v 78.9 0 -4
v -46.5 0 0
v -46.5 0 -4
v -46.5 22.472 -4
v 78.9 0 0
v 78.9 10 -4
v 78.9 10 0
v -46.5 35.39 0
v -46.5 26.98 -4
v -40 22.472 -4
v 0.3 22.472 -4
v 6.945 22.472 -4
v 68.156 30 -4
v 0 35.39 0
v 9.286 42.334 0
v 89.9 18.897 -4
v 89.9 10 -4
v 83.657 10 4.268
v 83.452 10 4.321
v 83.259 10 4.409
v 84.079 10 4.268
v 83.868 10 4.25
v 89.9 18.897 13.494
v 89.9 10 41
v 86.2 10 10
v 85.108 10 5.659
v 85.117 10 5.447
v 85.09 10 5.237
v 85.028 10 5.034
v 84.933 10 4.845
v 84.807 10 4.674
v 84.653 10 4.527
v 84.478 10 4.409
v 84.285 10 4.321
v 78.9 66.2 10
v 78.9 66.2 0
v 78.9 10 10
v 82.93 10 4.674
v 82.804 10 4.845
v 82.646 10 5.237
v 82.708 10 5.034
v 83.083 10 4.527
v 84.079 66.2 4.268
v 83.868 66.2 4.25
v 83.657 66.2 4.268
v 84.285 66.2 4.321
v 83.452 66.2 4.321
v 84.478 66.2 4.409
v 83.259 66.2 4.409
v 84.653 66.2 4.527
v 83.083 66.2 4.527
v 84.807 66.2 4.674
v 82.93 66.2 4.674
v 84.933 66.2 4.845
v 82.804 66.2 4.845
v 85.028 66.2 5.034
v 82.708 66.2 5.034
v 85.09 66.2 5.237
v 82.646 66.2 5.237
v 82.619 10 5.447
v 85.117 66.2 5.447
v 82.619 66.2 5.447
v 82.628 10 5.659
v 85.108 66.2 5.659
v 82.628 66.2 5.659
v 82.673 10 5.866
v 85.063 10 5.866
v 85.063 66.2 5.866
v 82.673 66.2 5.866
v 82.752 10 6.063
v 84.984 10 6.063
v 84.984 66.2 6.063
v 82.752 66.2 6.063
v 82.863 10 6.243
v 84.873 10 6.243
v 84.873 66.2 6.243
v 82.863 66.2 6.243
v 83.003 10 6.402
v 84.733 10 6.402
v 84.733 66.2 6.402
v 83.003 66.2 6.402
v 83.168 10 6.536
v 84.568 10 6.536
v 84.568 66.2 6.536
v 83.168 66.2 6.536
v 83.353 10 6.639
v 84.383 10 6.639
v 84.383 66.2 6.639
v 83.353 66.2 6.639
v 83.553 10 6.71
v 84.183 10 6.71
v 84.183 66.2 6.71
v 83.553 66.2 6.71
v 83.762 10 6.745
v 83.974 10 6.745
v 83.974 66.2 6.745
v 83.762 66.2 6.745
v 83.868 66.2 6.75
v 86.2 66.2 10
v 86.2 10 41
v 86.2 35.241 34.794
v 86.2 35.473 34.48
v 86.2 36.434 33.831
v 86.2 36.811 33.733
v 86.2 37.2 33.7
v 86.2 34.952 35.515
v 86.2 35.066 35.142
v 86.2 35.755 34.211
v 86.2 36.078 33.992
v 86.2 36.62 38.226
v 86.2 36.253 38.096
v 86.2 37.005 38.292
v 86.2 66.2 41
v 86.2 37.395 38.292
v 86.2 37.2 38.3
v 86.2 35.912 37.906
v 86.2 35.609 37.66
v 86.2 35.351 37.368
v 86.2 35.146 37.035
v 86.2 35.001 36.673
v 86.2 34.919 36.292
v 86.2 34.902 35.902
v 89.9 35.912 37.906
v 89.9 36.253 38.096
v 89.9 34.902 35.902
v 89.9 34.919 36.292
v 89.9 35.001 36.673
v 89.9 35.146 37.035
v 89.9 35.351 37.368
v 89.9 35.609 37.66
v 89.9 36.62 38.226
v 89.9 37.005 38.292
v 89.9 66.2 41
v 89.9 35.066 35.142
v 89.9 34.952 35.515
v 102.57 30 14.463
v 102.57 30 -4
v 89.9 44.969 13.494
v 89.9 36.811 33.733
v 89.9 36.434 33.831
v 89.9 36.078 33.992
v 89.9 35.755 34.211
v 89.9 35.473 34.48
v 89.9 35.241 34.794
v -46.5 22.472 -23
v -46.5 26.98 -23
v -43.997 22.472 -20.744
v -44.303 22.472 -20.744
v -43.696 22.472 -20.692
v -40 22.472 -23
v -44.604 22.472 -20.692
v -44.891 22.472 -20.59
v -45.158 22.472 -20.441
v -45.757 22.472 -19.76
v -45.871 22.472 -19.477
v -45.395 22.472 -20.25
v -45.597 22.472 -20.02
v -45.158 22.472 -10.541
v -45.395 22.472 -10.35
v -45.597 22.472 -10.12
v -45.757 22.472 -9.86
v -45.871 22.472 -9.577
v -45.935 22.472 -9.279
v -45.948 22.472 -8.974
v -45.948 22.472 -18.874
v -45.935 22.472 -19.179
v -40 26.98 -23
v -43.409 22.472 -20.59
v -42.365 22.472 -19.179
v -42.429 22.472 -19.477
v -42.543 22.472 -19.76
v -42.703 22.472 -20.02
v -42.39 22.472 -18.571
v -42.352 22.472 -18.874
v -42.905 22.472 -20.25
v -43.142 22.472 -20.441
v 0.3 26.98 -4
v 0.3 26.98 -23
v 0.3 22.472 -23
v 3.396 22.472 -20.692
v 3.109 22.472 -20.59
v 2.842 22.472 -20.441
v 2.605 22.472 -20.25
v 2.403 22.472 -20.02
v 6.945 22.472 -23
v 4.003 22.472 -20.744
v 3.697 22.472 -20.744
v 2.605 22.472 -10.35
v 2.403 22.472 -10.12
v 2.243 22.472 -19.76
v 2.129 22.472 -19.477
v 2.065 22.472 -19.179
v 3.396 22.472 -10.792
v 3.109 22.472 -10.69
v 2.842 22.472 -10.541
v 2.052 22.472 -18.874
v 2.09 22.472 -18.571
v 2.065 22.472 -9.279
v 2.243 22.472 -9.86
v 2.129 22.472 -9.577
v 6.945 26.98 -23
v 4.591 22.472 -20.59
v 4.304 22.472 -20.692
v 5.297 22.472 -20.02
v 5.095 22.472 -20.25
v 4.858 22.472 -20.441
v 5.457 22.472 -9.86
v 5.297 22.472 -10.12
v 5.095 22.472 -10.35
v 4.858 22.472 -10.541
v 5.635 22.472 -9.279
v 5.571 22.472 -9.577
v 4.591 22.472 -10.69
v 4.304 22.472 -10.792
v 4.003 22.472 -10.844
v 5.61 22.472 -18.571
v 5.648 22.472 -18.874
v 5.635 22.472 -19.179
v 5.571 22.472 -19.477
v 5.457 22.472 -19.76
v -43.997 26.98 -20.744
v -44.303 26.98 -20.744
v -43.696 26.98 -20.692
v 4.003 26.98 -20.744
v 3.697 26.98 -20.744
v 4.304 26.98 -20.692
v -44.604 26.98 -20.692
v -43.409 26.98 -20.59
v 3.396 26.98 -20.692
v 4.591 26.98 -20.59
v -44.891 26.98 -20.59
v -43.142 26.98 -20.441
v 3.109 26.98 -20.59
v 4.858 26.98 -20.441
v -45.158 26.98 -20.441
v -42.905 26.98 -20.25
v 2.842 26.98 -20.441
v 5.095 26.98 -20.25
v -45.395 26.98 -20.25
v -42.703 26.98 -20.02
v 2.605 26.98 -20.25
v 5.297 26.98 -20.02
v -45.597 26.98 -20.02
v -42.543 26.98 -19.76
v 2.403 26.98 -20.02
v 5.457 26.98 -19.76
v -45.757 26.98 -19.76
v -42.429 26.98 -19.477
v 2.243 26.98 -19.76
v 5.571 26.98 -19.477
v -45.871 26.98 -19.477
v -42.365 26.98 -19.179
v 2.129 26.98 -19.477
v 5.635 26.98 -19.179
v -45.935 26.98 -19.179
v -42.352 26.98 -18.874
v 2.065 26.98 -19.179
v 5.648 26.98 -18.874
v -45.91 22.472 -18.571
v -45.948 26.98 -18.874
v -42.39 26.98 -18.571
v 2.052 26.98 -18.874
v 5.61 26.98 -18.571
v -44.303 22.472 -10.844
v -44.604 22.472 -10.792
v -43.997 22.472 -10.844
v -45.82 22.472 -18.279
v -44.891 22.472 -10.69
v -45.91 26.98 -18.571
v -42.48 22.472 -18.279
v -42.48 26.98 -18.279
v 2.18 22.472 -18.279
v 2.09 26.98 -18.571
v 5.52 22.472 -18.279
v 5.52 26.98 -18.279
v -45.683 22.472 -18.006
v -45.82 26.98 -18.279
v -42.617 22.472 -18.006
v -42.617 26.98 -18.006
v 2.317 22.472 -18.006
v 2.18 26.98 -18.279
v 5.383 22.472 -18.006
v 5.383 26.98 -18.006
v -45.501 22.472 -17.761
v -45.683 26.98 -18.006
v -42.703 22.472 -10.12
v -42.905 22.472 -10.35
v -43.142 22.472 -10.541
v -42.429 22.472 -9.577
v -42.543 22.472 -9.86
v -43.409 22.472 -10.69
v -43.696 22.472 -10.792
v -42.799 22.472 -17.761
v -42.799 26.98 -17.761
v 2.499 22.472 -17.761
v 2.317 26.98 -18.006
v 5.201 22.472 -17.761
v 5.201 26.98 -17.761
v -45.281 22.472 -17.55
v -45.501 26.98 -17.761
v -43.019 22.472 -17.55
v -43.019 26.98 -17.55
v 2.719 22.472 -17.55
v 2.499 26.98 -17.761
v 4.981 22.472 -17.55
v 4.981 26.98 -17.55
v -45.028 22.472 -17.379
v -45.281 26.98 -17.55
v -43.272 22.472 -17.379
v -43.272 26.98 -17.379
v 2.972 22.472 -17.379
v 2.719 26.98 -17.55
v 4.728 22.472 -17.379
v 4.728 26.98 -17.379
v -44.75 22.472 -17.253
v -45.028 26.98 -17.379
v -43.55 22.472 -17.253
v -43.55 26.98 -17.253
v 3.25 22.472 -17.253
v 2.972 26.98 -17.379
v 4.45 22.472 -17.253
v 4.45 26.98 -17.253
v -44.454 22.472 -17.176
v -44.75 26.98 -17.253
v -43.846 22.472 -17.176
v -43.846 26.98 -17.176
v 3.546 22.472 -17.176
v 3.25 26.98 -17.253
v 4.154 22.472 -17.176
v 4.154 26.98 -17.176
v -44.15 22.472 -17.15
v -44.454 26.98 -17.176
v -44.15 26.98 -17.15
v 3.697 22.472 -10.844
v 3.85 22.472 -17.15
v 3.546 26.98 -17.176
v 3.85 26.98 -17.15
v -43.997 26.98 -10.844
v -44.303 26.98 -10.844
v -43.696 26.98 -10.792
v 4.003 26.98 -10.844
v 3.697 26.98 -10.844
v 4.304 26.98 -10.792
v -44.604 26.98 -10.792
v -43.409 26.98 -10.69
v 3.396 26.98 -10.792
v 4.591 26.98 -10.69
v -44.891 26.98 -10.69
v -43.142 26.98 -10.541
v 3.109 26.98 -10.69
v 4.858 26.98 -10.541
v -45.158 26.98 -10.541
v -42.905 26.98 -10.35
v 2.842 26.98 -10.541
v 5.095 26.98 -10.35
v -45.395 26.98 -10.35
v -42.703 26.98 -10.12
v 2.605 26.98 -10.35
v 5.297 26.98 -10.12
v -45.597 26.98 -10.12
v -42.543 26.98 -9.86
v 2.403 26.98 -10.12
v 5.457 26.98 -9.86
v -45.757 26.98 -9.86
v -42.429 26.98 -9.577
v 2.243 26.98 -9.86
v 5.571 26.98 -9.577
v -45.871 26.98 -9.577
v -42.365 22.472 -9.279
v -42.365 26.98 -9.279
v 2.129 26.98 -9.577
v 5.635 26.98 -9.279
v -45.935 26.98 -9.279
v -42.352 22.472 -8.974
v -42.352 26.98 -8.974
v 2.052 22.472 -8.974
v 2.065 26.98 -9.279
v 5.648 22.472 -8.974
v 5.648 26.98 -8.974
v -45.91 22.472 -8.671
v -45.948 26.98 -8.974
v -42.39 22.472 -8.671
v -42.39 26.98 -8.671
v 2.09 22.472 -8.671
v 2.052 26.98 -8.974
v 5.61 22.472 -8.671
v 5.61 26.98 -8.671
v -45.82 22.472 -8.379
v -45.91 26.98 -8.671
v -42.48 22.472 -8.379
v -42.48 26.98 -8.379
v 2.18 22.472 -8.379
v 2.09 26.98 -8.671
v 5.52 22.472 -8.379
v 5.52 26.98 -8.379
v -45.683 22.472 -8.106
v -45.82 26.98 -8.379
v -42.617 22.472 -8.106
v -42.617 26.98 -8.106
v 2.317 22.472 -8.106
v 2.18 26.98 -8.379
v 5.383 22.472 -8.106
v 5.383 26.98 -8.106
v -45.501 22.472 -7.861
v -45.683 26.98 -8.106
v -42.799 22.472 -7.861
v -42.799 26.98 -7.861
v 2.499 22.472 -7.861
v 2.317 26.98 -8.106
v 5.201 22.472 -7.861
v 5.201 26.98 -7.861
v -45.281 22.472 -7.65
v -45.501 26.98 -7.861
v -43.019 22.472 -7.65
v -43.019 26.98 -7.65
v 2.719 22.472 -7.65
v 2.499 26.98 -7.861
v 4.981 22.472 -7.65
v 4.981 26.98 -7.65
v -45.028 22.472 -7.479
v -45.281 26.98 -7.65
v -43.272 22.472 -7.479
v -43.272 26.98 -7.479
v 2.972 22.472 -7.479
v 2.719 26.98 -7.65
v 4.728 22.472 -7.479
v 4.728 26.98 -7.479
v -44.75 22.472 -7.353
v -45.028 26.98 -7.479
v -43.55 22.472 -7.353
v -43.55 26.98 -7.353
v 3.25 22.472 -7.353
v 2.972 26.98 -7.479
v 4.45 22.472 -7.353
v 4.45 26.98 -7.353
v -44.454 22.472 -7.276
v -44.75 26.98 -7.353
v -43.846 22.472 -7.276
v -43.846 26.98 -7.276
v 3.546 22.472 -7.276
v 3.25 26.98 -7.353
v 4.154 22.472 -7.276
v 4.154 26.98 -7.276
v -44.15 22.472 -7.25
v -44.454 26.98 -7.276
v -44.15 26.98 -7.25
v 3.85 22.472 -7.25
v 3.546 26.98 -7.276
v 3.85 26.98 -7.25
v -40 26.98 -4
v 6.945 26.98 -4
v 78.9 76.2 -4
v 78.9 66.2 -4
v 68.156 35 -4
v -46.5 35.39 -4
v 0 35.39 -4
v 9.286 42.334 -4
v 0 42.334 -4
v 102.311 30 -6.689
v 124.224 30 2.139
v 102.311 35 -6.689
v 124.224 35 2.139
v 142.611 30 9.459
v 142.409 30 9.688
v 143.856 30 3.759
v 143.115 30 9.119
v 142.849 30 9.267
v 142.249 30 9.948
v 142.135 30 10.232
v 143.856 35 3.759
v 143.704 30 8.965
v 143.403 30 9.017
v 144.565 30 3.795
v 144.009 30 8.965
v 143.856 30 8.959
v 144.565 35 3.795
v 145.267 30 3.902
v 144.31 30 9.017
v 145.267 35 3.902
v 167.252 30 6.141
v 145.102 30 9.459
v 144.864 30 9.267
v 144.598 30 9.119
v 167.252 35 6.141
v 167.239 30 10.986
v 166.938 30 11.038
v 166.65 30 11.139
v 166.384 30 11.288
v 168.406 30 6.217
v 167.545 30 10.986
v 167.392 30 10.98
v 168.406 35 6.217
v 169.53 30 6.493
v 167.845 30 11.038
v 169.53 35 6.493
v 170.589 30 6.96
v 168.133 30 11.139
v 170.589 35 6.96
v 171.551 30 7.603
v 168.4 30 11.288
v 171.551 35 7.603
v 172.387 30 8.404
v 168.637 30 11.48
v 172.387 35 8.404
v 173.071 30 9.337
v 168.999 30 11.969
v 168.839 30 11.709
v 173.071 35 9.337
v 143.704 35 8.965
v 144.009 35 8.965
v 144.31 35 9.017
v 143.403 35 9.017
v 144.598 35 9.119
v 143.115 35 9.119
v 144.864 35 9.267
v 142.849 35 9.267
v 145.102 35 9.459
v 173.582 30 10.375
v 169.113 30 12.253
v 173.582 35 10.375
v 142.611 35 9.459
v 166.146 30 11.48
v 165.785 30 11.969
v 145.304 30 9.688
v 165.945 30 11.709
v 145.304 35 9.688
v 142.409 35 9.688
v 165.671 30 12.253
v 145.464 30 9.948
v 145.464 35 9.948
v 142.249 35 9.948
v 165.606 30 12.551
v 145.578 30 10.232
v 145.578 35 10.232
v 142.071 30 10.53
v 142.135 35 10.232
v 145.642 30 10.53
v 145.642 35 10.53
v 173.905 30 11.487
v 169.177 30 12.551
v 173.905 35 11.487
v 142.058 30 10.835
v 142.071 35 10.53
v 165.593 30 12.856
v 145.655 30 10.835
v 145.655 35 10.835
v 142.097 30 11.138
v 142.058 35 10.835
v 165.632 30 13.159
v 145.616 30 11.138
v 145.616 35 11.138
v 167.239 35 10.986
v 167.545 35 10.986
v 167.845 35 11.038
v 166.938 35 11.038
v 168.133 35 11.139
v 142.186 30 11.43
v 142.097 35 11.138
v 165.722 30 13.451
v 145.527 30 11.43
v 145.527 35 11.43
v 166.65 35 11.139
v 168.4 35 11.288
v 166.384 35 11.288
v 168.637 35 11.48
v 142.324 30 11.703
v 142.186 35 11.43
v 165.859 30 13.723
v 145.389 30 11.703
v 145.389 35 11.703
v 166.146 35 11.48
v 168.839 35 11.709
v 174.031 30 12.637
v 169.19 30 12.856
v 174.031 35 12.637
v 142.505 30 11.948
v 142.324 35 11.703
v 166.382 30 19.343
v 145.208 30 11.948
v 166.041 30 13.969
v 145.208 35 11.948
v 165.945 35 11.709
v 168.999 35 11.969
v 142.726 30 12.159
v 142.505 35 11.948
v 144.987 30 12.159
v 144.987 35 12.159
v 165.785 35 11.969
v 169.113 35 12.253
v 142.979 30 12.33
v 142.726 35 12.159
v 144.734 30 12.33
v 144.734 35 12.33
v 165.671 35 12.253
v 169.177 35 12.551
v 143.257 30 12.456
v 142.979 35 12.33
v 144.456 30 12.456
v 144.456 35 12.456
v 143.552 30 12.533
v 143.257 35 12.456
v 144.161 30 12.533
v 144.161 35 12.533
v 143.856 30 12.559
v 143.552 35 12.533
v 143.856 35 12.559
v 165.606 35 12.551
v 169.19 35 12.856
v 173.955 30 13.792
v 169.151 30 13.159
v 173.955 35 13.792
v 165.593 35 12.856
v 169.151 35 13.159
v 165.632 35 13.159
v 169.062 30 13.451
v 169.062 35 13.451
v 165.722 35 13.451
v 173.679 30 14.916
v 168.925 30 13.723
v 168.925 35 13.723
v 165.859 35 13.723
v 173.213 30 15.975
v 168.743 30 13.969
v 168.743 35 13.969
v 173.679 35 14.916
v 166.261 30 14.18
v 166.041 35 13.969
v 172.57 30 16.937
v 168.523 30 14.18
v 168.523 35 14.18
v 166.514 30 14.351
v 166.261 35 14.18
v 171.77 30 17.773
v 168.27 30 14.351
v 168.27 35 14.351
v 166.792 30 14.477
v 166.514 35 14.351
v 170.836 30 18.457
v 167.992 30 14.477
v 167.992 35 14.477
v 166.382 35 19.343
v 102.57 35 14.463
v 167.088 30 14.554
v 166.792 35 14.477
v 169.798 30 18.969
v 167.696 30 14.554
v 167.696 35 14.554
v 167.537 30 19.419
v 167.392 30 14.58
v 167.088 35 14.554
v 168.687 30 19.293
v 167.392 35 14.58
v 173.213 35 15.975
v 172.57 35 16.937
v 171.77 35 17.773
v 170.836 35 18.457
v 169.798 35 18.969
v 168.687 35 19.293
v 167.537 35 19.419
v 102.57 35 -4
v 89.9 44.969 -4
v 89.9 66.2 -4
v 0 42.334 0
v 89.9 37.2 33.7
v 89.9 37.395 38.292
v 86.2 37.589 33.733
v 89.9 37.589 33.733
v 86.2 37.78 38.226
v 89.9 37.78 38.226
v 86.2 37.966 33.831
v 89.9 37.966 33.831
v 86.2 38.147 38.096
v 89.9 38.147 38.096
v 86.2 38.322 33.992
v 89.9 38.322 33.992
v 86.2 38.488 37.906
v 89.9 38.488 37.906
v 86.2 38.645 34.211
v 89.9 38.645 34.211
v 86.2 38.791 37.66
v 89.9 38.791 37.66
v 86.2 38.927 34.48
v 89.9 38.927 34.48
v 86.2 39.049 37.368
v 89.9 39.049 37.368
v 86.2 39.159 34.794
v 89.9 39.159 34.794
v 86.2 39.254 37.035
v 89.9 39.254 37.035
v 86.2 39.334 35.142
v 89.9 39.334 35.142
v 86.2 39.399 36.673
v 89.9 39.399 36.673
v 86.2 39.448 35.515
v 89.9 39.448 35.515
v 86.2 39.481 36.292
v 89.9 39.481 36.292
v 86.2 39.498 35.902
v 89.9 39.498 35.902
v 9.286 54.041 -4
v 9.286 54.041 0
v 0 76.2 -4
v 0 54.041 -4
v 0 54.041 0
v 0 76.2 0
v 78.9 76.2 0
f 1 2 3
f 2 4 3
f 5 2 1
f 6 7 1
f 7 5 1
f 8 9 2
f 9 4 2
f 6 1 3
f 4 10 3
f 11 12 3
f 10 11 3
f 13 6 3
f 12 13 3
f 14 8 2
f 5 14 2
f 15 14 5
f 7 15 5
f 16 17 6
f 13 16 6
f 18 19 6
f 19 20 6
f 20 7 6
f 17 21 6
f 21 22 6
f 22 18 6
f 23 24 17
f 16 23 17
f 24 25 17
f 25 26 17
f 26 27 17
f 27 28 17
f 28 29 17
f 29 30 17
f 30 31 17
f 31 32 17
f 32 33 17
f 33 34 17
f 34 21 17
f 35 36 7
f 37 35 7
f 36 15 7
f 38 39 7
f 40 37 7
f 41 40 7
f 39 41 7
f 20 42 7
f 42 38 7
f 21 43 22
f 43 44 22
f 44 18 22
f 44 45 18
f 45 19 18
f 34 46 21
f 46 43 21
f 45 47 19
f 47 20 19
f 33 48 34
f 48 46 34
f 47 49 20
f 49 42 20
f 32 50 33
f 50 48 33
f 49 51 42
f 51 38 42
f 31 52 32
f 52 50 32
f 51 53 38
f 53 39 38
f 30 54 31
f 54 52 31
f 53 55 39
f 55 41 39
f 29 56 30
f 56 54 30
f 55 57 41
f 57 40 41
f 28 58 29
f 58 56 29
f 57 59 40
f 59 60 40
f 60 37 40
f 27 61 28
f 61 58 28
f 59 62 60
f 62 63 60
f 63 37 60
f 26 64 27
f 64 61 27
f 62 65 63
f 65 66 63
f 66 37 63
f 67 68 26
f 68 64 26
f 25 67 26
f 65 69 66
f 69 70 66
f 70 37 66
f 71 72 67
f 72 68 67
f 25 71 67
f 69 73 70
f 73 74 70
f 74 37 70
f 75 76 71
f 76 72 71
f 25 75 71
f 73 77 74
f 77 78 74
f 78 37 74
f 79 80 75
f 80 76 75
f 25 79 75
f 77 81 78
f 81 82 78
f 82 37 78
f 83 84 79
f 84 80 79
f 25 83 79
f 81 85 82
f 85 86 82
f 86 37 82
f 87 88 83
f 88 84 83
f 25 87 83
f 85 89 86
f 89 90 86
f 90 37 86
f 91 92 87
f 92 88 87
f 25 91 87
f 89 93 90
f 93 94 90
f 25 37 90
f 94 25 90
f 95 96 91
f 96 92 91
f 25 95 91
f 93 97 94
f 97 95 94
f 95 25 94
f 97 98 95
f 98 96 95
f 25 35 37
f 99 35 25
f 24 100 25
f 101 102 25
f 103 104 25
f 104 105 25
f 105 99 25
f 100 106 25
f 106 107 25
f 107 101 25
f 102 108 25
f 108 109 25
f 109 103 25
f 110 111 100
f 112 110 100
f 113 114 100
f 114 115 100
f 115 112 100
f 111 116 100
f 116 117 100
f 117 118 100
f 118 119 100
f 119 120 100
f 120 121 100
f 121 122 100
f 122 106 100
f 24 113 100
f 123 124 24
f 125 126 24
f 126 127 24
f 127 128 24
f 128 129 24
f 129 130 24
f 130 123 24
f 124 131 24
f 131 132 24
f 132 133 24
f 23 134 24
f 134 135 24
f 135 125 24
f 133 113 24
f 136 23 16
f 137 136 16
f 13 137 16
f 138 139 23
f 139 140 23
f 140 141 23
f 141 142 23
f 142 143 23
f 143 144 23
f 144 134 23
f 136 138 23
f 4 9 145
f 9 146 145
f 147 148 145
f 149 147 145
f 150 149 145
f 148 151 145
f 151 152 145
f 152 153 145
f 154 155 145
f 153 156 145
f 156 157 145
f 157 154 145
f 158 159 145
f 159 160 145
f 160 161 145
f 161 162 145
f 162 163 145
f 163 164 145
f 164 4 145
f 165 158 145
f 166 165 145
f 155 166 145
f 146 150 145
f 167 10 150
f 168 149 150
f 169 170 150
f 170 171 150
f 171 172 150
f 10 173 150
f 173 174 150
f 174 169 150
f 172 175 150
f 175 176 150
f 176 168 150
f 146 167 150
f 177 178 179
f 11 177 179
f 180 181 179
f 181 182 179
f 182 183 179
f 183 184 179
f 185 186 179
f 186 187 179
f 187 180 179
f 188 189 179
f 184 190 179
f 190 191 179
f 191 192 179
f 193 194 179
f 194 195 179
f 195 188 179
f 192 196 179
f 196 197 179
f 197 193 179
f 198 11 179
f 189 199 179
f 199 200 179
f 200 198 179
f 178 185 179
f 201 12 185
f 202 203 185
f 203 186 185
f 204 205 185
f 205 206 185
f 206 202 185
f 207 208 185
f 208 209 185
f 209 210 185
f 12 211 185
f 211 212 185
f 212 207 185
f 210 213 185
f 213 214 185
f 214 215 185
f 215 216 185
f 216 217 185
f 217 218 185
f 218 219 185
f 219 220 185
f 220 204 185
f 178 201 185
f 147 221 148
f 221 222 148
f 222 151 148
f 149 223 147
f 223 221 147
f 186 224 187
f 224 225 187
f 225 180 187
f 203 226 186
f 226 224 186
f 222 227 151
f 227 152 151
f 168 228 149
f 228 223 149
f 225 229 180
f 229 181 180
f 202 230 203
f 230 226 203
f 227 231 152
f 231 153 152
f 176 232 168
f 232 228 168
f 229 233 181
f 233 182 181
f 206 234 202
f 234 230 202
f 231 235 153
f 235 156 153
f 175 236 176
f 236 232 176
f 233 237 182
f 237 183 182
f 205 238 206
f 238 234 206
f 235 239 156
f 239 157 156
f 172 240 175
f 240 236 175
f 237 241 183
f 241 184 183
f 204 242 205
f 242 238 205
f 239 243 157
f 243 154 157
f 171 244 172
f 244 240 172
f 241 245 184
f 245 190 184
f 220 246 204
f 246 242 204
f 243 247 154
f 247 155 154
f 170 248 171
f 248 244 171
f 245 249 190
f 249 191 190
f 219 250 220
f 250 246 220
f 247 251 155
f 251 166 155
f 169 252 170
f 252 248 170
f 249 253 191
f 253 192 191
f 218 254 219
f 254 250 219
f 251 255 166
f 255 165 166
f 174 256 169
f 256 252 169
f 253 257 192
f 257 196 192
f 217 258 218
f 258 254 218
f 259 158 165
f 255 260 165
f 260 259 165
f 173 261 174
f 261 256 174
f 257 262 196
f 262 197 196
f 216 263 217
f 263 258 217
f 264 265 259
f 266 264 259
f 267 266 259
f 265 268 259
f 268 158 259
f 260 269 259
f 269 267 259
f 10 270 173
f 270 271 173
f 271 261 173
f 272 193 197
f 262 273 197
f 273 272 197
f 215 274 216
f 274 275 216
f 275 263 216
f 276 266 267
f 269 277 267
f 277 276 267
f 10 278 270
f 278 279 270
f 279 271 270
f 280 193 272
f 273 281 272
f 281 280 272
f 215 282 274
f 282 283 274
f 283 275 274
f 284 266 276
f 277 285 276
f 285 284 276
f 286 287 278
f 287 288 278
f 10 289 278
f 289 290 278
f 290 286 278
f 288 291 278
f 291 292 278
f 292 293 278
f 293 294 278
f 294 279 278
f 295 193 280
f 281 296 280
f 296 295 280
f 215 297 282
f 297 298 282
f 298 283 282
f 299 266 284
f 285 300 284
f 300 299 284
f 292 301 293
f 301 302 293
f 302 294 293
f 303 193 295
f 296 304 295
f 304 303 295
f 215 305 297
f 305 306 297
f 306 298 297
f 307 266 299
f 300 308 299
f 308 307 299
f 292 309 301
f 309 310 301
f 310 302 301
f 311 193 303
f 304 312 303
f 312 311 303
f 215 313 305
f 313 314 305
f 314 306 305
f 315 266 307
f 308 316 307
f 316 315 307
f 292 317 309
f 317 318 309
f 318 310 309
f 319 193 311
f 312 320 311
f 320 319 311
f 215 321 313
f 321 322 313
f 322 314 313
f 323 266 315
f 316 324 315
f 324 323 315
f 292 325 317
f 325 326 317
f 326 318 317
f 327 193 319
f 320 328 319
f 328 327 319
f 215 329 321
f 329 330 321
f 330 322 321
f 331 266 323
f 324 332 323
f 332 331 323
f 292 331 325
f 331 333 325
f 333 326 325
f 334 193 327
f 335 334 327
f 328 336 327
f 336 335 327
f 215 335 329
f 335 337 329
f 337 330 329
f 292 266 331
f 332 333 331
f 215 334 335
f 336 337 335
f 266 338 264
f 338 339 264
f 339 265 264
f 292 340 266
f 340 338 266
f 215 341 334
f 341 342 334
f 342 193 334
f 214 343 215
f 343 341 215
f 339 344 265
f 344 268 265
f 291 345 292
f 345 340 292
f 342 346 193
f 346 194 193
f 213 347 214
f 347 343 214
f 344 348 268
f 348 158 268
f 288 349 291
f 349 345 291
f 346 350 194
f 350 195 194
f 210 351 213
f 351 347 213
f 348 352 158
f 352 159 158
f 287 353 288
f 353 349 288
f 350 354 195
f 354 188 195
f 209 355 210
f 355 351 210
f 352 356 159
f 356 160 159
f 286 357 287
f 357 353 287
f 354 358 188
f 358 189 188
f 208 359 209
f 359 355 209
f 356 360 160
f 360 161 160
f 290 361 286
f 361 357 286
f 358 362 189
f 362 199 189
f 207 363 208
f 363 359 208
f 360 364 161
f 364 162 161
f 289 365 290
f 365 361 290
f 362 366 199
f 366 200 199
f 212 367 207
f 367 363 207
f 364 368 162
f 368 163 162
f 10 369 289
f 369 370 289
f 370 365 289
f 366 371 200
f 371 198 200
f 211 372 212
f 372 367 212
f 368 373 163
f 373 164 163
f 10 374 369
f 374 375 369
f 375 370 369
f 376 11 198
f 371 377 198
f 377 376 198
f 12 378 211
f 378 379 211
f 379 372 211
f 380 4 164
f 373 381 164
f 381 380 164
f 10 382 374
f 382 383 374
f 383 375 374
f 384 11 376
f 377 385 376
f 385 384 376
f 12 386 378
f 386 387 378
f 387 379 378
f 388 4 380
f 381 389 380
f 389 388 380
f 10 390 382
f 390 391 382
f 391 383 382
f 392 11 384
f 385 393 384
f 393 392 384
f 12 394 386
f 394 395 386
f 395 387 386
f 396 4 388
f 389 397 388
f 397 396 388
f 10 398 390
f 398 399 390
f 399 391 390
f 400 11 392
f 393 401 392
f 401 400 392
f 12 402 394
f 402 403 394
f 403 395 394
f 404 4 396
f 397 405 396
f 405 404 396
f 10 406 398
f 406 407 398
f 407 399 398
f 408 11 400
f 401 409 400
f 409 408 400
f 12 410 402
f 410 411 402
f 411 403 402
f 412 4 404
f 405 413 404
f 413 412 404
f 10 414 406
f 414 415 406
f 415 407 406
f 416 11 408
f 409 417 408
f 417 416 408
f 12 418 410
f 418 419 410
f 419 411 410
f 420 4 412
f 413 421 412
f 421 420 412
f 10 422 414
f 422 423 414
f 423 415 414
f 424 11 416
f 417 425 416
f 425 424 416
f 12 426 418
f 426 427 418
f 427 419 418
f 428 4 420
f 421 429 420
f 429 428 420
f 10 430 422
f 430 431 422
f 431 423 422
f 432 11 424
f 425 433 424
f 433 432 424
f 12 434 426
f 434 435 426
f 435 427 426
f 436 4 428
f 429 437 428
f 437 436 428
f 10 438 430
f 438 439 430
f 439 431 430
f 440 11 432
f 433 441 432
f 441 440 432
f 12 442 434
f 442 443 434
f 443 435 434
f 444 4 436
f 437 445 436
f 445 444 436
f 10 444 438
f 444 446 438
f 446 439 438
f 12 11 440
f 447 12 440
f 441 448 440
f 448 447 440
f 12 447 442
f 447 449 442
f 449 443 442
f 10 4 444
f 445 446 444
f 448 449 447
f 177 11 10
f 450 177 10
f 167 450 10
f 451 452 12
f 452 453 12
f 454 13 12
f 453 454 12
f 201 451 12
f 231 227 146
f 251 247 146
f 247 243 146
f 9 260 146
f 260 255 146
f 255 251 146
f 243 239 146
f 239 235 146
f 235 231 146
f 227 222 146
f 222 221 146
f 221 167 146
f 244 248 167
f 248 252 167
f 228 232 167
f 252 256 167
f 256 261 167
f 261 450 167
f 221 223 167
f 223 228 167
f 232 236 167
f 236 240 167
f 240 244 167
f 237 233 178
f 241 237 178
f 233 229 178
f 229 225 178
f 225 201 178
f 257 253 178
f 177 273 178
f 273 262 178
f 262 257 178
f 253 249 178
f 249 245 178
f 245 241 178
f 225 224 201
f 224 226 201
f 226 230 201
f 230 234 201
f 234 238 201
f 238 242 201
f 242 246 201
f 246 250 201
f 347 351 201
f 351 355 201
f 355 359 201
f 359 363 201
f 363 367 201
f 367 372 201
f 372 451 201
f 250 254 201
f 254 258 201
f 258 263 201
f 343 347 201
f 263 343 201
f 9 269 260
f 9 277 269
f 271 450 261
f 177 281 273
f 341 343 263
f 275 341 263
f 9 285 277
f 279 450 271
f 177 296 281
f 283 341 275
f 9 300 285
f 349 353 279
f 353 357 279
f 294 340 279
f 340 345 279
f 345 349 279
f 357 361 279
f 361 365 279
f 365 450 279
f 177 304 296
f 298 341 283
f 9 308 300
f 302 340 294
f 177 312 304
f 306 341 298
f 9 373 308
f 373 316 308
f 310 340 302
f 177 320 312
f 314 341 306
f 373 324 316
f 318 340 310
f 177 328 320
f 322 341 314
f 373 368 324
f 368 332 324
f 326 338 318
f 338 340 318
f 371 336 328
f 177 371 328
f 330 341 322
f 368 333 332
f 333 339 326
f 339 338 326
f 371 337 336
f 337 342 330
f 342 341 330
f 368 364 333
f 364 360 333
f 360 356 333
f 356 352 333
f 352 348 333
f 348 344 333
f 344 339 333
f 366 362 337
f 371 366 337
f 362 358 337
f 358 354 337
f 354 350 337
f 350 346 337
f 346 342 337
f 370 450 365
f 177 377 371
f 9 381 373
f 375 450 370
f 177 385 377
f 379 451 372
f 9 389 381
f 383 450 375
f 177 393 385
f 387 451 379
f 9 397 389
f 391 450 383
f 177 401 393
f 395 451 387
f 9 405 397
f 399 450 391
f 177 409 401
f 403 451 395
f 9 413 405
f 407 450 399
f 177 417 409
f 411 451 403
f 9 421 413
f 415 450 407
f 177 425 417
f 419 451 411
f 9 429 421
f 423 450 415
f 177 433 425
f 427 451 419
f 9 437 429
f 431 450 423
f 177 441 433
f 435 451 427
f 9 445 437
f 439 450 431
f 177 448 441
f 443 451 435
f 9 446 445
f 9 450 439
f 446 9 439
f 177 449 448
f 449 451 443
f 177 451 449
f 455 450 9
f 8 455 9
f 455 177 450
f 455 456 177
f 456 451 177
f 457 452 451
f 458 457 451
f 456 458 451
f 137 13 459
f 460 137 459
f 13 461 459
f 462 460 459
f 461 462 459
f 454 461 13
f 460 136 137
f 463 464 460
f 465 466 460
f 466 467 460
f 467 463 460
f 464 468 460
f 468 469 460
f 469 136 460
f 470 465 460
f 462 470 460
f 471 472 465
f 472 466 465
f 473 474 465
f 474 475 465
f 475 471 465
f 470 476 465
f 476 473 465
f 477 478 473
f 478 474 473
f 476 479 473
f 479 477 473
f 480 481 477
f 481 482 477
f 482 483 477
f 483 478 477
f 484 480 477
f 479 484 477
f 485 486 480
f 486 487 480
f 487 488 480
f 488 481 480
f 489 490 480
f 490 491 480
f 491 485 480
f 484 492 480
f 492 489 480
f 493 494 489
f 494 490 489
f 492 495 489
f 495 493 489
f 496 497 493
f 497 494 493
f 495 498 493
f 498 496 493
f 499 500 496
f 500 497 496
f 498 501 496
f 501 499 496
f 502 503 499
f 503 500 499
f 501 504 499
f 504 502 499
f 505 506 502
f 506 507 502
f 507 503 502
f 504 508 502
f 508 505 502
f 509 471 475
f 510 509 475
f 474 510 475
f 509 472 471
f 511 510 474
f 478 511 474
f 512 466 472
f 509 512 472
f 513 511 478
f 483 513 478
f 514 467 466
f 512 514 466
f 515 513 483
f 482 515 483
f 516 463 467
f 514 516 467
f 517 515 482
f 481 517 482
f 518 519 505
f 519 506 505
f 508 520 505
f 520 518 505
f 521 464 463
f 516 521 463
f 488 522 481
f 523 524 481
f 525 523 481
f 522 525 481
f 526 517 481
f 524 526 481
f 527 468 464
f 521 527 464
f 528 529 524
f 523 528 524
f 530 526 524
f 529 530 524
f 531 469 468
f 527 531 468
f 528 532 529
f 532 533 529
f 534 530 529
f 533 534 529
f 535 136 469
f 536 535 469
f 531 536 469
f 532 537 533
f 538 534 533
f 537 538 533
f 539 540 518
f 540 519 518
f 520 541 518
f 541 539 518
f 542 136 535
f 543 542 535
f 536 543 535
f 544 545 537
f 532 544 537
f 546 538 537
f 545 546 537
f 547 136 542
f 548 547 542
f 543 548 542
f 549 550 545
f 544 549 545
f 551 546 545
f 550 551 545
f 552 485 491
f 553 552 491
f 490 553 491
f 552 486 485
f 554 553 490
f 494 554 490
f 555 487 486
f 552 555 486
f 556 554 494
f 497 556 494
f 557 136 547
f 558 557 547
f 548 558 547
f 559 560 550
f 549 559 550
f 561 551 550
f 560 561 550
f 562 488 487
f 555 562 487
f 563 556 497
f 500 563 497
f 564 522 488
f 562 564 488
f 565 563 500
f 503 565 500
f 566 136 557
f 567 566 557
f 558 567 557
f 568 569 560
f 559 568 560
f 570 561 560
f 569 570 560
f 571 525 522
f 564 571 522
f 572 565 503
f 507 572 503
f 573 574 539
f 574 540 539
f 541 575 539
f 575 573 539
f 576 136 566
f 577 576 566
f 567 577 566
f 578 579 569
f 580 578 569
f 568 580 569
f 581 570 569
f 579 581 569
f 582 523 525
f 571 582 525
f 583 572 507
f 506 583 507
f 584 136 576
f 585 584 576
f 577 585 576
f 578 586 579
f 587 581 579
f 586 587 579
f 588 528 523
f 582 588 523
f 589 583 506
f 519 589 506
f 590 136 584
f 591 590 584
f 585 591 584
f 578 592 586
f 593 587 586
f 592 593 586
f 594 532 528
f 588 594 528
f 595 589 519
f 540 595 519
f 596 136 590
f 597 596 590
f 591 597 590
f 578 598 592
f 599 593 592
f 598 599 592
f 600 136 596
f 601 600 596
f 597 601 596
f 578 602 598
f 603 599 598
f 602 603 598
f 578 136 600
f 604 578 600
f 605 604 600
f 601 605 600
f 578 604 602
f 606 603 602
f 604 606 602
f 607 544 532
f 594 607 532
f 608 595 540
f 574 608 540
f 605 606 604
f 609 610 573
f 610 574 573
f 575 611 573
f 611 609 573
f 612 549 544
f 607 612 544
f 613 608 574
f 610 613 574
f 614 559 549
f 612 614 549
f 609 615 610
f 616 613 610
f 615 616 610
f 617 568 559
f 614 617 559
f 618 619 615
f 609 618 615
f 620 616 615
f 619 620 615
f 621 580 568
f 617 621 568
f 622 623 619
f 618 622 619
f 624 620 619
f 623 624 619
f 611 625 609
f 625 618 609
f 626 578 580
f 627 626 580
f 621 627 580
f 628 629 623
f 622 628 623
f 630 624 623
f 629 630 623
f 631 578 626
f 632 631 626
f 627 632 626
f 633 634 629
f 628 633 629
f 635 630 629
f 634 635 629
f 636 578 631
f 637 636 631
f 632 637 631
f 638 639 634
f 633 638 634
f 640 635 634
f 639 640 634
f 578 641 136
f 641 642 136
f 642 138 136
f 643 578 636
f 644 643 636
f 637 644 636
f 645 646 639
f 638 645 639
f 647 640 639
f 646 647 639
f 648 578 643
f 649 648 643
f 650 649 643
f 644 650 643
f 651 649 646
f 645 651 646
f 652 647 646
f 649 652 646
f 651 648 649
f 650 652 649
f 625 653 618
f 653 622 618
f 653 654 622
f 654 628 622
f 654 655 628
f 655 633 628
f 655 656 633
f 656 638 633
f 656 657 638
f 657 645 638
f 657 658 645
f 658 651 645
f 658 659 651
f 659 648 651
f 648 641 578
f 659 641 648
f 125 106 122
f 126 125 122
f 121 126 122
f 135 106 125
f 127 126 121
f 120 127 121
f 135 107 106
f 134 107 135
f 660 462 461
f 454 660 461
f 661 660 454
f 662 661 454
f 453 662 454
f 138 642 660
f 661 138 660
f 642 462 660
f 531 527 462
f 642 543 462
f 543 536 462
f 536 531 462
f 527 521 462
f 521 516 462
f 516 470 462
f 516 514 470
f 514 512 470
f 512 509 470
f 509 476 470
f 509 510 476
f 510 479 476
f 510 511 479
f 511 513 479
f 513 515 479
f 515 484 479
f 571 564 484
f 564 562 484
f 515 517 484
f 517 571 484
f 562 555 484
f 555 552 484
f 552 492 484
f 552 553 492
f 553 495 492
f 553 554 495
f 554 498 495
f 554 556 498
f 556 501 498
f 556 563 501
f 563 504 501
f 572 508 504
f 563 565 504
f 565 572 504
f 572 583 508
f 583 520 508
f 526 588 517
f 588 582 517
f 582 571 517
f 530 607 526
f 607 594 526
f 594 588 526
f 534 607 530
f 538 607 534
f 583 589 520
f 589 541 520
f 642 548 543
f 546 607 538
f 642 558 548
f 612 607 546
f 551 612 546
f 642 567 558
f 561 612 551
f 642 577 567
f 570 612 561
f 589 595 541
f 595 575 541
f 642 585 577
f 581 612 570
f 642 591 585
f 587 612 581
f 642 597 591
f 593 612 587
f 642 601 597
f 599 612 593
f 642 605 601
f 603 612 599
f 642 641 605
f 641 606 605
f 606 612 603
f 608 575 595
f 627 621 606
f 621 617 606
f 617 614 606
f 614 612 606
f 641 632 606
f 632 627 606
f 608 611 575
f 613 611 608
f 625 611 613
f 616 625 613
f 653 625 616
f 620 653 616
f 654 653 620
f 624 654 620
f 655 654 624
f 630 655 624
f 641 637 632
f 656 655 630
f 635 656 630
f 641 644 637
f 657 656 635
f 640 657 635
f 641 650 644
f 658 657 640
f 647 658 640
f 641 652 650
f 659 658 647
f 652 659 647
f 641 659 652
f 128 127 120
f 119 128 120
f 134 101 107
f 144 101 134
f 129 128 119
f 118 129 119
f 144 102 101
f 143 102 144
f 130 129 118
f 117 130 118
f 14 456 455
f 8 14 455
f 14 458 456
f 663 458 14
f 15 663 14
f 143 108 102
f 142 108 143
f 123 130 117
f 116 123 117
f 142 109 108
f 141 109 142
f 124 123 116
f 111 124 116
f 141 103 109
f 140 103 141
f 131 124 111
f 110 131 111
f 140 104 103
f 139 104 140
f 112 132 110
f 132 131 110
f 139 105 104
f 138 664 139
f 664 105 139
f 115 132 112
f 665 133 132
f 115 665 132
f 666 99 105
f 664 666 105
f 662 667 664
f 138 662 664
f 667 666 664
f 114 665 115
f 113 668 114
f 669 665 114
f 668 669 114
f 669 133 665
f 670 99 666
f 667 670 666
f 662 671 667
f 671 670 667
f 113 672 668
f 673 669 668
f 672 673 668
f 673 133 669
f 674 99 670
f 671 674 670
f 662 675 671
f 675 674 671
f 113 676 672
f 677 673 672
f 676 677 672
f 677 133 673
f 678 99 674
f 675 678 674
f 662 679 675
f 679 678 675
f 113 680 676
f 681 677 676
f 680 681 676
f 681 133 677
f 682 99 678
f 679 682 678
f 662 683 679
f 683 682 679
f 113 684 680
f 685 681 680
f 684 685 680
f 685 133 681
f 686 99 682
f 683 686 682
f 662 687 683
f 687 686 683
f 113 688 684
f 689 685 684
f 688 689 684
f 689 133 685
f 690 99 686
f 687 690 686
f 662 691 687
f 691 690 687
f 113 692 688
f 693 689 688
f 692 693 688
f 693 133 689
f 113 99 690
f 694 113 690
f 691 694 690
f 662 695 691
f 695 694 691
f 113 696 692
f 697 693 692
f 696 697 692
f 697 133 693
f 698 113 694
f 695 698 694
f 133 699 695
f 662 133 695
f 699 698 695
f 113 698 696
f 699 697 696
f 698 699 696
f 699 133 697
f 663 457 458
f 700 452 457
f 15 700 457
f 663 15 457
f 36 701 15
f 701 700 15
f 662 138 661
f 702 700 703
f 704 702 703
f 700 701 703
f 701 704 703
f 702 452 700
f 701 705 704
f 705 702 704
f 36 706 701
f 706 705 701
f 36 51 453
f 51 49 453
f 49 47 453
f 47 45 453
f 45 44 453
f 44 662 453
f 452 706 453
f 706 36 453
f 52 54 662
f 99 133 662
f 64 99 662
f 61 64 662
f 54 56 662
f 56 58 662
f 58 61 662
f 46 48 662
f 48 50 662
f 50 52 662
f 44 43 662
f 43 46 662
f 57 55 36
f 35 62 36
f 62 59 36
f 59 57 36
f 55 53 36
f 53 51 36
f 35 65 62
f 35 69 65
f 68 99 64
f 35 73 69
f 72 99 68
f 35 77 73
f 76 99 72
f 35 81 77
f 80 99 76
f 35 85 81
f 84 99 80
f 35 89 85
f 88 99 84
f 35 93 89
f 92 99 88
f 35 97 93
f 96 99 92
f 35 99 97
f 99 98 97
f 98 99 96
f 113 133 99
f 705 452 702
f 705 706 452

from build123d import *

# Parameters (mm, degrees)
SKETCH1_W                = 78.9
SKETCH1_H                = 4
BOSS_EXTRUDE1_DEPTH      = 76.2
SKETCH2_W                = 46.5
SKETCH2_H                = 26.89406393
BOSS_EXTRUDE2_DEPTH      = 4
SKETCH5_W                = 9.285994966
SKETCH5_H                = 11.707020407
CUT_EXTRUDE2_DEPTH       = 5
SKETCH6_R                = 1.25
CUT_EXTRUDE3_DEPTH       = 85
SKETCH7_W                = 10
SKETCH7_H                = 14
CUT_EXTRUDE4_DEPTH       = 10
SKETCH8_W                = 10
SKETCH8_H                = 14
CUT_EXTRUDE5_DEPTH       = 10
SKETCH9_W                = 3.7
SKETCH9_H                = 45
BOSS_EXTRUDE4_DEPTH      = 56.2
SKETCH10_W               = 46.5
SKETCH10_H               = 8.496116432
BOSS_EXTRUDE5_DEPTH      = 4
SKETCH11_W               = 6.644809846
SKETCH11_H               = 4.508222244
SKETCH11_W_2             = 6.5
BOSS_EXTRUDE6_DEPTH      = 19
SKETCH12_R               = 1.8
CUT_EXTRUDE6_DEPTH       = 19
SKETCH14_R               = 2.3
CUT_EXTRUDE7_DEPTH       = 10
BOSS_EXTRUDE7_DEPTH      = 5
SKETCH16_R               = 1.8
CUT_EXTRUDE8_DEPTH       = 10
BOSS_EXTRUDE8_DEPTH      = 21
BOSS_EXTRUDE9_DEPTH      = 5
CUT_EXTRUDE9_DEPTH       = 5
CUT_EXTRUDE10_DEPTH      = 25
CUT_EXTRUDE10_DEPTH_BACK = 25


with BuildPart() as part:
    # Sketch1 → Boss-Extrude1 (new body)
    with BuildSketch(Plane(origin=(0, 0, 0), x_dir=(1, 0, 0), z_dir=(0, 1, 0))):
        with Locations((39.45, 2)):
            Rectangle(SKETCH1_W, SKETCH1_H)
        Polygon((78.9, 4), (78.9, 0), (78.9, -10), (88.9, -10), (88.9, 4), align=None)
    extrude(amount=BOSS_EXTRUDE1_DEPTH)

    # Sketch2 → Boss-Extrude2 (add)
    with BuildSketch(Plane(origin=(0, 0, -4), x_dir=(-1, 0, 0), z_dir=(0, 0, -1))):
        with Locations((23.25, 13.447031965)):
            Rectangle(SKETCH2_W, SKETCH2_H)
    extrude(amount=-BOSS_EXTRUDE2_DEPTH)

    # Sketch5 → Cut-Extrude2 (cut)
    with BuildSketch(Plane(origin=(0, 0, -4), x_dir=(-1, 0, 0), z_dir=(0, 0, -1))):
        with Locations((-4.642997483, 48.187124879)):
            Rectangle(SKETCH5_W, SKETCH5_H)
    extrude(amount=-CUT_EXTRUDE2_DEPTH, mode=Mode.SUBTRACT)

    # Sketch6 → Cut-Extrude3 (cut)
    with BuildSketch(Plane(origin=(0, 0, 0), x_dir=(-1, 0, 0), z_dir=(0, -1, 0))):
        with Locations(Location((-83.868179675, -5.5, 0), (0, 0, 90))):
            Circle(SKETCH6_R)
    extrude(amount=-CUT_EXTRUDE3_DEPTH, mode=Mode.SUBTRACT)

    # Sketch7 → Cut-Extrude4 (cut)
    with BuildSketch(Plane.XZ):
        with Locations((83.9, 3)):
            Rectangle(SKETCH7_W, SKETCH7_H)
    extrude(amount=-CUT_EXTRUDE4_DEPTH, mode=Mode.SUBTRACT)

    # Sketch8 → Cut-Extrude5 (cut)
    with BuildSketch(Plane(origin=(0, 76.2, 0), x_dir=(1, 0, 0), z_dir=(0, 1, 0))):
        with Locations((83.9, -3)):
            Rectangle(SKETCH8_W, SKETCH8_H)
    extrude(amount=-CUT_EXTRUDE5_DEPTH, mode=Mode.SUBTRACT)

    # Sketch9 → Boss-Extrude4 (add)
    with BuildSketch(Plane(origin=(0, 66.2, 0), x_dir=(1, 0, 0), z_dir=(0, 1, 0))):
        with Locations((88.05, -18.5)):
            Rectangle(SKETCH9_W, SKETCH9_H)
    extrude(amount=-BOSS_EXTRUDE4_DEPTH)

    # Sketch10 → Boss-Extrude5 (add)
    with BuildSketch(Plane.XY):
        with Locations((-23.25, 31.142122146)):
            Rectangle(SKETCH10_W, SKETCH10_H)
    extrude(amount=-BOSS_EXTRUDE5_DEPTH)

    # Sketch11 → Boss-Extrude6 (add)
    with BuildSketch(Plane(origin=(0, 0, -4), x_dir=(-1, 0, 0), z_dir=(0, 0, -1))):
        with Locations((-3.622404923, 24.725888878)):
            Rectangle(SKETCH11_W, SKETCH11_H)
        with Locations((43.25, 24.725888878)):
            Rectangle(SKETCH11_W_2, SKETCH11_H)
    extrude(amount=BOSS_EXTRUDE6_DEPTH)

    # Sketch12 → Cut-Extrude6 (cut)
    with BuildSketch(Plane(origin=(0, 26.98, 0), x_dir=(1, 0, 0), z_dir=(0, 1, 0))):
        with Locations(Location((-44.15, 18.95, 0), (0, 0, 270))):
            Circle(SKETCH12_R)
        with Locations(Location((-44.15, 9.05, 0), (0, 0, 270))):
            Circle(SKETCH12_R)
        with Locations(Location((3.85, 18.95, 0), (0, 0, 270))):
            Circle(SKETCH12_R)
        with Locations(Location((3.85, 9.05, 0), (0, 0, 270))):
            Circle(SKETCH12_R)
    extrude(amount=-CUT_EXTRUDE6_DEPTH, mode=Mode.SUBTRACT)

    # Sketch14 → Cut-Extrude7 (cut)
    with BuildSketch(Plane(origin=(89.9, 0, 0), x_dir=(0, 0, -1), z_dir=(1, 0, 0))):
        with Locations((-36, 37.2)):
            Circle(SKETCH14_R)
    extrude(amount=-CUT_EXTRUDE7_DEPTH, mode=Mode.SUBTRACT)

    # Sketch15 → Boss-Extrude7 (add)
    with BuildSketch(Plane(origin=(0, 35, 0), x_dir=(-1, 0, 0), z_dir=(0, -1, 0))):
        with BuildLine():
            Line((-89.9, -16), (-89.9, 4))
            Line((-89.9, 4), (-167.391867849, -2.779659952))
            ThreePointArc((-167.391867849, -2.779659952), (-160.320800037, -5.70859214), (-157.391867849, -12.779659952))
            ThreePointArc((-157.391867849, -12.779659952), (-159.731423417, -19.207536049), (-165.655386072, -22.627737482))
            Line((-165.655386072, -22.627737482), (-89.9, -16))
        make_face()
        with BuildLine():
            ThreePointArc((-157.391867849, -12.779659952), (-160.320800037, -5.70859214), (-167.391867849, -2.779659952))
            Line((-167.391867849, -2.779659952), (-167.391867849, -22.779659952))
            Line((-167.391867849, -22.779659952), (-165.655386072, -22.627737482))
            ThreePointArc((-165.655386072, -22.627737482), (-159.731423417, -19.207536049), (-157.391867849, -12.779659952))
        make_face()
        with BuildLine():
            Line((-167.391867849, -22.779659952), (-167.391867849, -2.779659952))
            ThreePointArc((-167.391867849, -2.779659952), (-177.391867849, -12.779659952), (-167.391867849, -22.779659952))
        make_face()
    extrude(amount=BOSS_EXTRUDE7_DEPTH)

    # Sketch16 → Cut-Extrude8 (cut)
    with BuildSketch(Plane(origin=(0, 35, 0), x_dir=(1, 0, 0), z_dir=(0, 1, 0))):
        with Locations(Location((167.391867849, -12.779659952, 0), (0, 0, 270))):
            Circle(SKETCH16_R)
        with Locations(Location((143.856470685, -10.758777884, 0), (0, 0, 270))):
            Circle(SKETCH16_R)
    extrude(amount=-CUT_EXTRUDE8_DEPTH, mode=Mode.SUBTRACT)

    # Sketch17 → Boss-Extrude8 (add)
    with BuildSketch(Plane(origin=(0, 0, -4), x_dir=(-1, 0, 0), z_dir=(0, 0, -1))):
        Polygon((-89.9, 44.969099487), (-102.570211114, 35), (-102.570211114, 30), (-89.9, 18.896815366), align=None)
    extrude(amount=-BOSS_EXTRUDE8_DEPTH)

    # Sketch18 → Boss-Extrude9 (add)
    with BuildSketch(Plane(origin=(0, 35, 0), x_dir=(1, 0, 0), z_dir=(0, 1, 0))):
        Polygon((68.155607363, 4), (102.310564972, 6.689173102), (114.279885061, 1.867036439), align=None)
    extrude(amount=-BOSS_EXTRUDE9_DEPTH)

    # Sketch19 → Cut-Extrude9 (cut)
    with BuildSketch(Plane(origin=(0, 35, 0), x_dir=(1, 0, 0), z_dir=(0, 1, 0))):
        with BuildLine():
            Line((167.391867849, -2.779659952), (114.279885061, 1.867036439))
            Line((114.279885061, 1.867036439), (124.22443606, -2.139371913))
            Line((124.22443606, -2.139371913), (143.856470685, -3.758777884))
            ThreePointArc((143.856470685, -3.758777884), (144.565448389, -3.794773963), (145.267134545, -3.902391994))
            Line((145.267134545, -3.902391994), (167.251593152, -6.140542801))
            ThreePointArc((167.251593152, -6.140542801), (168.064444499, -6.173208999), (168.867202147, -6.305021565))
            ThreePointArc((168.867202147, -6.305021565), (172.582949472, -8.638376923), (174.032466733, -12.779659952))
            ThreePointArc((174.032466733, -12.779659952), (172.087480351, -17.475272454), (167.391867849, -19.420258836))
            ThreePointArc((167.391867849, -19.420258836), (166.885463525, -19.400921781), (166.382008444, -19.343023231))
            Line((166.382008444, -19.343023231), (144.811713642, -17.693293793))
            ThreePointArc((144.811713642, -17.693293793), (143.757690083, -17.758080878), (142.705914615, -17.66357482))
            Line((142.705914615, -17.66357482), (102.41543269, -17.09495848))
            Line((102.41543269, -17.09495848), (167.391867849, -22.779659952))
            ThreePointArc((167.391867849, -22.779659952), (177.391867849, -12.779659952), (167.391867849, -2.779659952))
        make_face()
    extrude(amount=-CUT_EXTRUDE9_DEPTH, mode=Mode.SUBTRACT)

    # Sketch21 → Cut-Extrude10 (cut, two sides: drawn at the far end of the back side and taken through both)
    with BuildSketch(Plane(origin=(0, 35, 0), x_dir=(1, 0, 0), z_dir=(0, 1, 0)).offset(-CUT_EXTRUDE10_DEPTH_BACK)):
        Polygon((148.965123629, -18.010952999), (89.9, -13.493561185), (89.9, -22.397972736), align=None)
    extrude(amount=CUT_EXTRUDE10_DEPTH + CUT_EXTRUDE10_DEPTH_BACK, mode=Mode.SUBTRACT)


solid = part.part
